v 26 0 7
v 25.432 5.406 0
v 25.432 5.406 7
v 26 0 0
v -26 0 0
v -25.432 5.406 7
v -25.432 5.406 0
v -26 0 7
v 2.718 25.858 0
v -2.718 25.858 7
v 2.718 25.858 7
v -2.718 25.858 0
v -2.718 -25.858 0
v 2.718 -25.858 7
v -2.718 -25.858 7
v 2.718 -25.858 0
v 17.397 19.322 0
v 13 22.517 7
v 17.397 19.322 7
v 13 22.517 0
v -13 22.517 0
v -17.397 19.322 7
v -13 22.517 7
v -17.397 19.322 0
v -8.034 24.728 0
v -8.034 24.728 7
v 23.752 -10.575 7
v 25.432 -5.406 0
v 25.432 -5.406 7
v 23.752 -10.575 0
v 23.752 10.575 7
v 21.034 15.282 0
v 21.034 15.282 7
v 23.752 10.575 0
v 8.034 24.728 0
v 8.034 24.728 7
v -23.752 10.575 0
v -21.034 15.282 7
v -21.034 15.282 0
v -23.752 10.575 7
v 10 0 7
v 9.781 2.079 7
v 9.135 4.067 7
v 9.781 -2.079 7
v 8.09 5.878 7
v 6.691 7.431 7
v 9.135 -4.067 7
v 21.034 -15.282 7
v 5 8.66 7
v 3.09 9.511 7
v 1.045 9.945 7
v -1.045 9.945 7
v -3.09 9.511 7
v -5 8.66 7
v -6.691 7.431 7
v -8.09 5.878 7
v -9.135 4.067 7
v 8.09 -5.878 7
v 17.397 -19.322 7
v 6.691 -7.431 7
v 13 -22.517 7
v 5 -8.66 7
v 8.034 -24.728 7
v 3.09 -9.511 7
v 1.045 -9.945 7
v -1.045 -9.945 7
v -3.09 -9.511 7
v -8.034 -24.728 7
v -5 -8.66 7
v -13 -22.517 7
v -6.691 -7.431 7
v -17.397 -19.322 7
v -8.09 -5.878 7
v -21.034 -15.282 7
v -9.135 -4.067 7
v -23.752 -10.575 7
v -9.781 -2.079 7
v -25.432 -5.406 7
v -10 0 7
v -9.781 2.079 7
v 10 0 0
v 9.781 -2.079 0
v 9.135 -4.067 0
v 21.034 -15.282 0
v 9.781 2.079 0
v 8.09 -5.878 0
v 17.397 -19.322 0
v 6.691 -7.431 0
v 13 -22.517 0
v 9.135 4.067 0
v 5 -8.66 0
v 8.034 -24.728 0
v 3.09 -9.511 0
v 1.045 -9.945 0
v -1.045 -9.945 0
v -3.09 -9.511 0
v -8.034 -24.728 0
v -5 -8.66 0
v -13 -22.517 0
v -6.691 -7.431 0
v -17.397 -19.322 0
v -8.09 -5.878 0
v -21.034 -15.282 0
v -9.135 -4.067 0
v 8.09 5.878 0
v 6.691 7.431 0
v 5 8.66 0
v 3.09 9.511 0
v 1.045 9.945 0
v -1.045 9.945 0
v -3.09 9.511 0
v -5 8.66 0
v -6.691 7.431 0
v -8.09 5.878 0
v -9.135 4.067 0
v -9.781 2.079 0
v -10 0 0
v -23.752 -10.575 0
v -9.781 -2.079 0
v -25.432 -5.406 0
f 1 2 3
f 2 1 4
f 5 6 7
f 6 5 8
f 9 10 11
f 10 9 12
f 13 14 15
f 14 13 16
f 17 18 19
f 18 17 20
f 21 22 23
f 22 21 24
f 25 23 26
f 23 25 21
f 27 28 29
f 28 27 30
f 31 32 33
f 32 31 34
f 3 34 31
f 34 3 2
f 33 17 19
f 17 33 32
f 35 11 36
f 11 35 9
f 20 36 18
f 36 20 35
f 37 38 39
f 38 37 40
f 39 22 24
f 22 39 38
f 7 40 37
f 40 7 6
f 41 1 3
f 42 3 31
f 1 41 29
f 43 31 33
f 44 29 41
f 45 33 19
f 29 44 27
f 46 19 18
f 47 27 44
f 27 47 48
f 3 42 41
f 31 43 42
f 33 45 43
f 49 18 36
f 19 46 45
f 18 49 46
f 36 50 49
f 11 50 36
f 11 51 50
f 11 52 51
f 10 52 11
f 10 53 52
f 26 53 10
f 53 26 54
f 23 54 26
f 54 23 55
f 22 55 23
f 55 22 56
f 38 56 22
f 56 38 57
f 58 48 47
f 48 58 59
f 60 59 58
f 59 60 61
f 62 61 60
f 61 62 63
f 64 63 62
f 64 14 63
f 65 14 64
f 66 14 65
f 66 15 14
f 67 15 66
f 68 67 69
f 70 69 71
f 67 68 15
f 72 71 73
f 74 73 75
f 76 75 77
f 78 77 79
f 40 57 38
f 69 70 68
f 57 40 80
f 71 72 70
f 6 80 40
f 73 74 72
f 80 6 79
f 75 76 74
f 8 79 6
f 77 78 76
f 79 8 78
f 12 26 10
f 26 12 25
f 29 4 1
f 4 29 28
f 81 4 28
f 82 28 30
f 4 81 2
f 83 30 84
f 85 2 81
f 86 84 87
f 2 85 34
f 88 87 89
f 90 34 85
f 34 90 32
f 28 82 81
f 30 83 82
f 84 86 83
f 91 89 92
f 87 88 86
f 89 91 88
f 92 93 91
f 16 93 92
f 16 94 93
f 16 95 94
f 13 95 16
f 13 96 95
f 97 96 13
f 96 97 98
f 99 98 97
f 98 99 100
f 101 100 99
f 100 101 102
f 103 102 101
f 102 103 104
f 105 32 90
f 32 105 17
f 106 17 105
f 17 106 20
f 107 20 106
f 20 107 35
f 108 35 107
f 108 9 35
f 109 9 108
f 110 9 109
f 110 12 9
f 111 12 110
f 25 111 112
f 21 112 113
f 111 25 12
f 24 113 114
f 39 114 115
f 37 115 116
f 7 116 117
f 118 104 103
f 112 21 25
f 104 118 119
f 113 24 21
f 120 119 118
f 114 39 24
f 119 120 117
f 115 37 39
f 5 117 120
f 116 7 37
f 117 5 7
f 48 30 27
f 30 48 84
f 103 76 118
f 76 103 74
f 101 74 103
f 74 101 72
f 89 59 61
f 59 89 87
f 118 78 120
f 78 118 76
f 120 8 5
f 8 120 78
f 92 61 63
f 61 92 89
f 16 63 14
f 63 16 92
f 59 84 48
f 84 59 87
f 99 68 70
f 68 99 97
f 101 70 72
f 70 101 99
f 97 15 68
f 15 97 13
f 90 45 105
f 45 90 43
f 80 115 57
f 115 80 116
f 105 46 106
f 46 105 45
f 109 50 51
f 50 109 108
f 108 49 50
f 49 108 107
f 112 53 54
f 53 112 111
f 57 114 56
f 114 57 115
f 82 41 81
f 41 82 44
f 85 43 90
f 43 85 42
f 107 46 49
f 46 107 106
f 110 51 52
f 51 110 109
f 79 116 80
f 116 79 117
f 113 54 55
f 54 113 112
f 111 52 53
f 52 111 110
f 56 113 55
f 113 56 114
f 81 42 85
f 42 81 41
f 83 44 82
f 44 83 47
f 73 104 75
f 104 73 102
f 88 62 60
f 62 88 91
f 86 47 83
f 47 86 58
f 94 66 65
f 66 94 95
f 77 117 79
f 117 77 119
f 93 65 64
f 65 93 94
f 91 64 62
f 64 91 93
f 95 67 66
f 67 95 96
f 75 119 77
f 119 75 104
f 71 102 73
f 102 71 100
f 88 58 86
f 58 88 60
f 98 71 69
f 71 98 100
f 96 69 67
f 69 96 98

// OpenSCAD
difference() {
  cylinder(h = 7, r = 26, center = false);
  cylinder(h = 10, r = 10, center = false);
}
